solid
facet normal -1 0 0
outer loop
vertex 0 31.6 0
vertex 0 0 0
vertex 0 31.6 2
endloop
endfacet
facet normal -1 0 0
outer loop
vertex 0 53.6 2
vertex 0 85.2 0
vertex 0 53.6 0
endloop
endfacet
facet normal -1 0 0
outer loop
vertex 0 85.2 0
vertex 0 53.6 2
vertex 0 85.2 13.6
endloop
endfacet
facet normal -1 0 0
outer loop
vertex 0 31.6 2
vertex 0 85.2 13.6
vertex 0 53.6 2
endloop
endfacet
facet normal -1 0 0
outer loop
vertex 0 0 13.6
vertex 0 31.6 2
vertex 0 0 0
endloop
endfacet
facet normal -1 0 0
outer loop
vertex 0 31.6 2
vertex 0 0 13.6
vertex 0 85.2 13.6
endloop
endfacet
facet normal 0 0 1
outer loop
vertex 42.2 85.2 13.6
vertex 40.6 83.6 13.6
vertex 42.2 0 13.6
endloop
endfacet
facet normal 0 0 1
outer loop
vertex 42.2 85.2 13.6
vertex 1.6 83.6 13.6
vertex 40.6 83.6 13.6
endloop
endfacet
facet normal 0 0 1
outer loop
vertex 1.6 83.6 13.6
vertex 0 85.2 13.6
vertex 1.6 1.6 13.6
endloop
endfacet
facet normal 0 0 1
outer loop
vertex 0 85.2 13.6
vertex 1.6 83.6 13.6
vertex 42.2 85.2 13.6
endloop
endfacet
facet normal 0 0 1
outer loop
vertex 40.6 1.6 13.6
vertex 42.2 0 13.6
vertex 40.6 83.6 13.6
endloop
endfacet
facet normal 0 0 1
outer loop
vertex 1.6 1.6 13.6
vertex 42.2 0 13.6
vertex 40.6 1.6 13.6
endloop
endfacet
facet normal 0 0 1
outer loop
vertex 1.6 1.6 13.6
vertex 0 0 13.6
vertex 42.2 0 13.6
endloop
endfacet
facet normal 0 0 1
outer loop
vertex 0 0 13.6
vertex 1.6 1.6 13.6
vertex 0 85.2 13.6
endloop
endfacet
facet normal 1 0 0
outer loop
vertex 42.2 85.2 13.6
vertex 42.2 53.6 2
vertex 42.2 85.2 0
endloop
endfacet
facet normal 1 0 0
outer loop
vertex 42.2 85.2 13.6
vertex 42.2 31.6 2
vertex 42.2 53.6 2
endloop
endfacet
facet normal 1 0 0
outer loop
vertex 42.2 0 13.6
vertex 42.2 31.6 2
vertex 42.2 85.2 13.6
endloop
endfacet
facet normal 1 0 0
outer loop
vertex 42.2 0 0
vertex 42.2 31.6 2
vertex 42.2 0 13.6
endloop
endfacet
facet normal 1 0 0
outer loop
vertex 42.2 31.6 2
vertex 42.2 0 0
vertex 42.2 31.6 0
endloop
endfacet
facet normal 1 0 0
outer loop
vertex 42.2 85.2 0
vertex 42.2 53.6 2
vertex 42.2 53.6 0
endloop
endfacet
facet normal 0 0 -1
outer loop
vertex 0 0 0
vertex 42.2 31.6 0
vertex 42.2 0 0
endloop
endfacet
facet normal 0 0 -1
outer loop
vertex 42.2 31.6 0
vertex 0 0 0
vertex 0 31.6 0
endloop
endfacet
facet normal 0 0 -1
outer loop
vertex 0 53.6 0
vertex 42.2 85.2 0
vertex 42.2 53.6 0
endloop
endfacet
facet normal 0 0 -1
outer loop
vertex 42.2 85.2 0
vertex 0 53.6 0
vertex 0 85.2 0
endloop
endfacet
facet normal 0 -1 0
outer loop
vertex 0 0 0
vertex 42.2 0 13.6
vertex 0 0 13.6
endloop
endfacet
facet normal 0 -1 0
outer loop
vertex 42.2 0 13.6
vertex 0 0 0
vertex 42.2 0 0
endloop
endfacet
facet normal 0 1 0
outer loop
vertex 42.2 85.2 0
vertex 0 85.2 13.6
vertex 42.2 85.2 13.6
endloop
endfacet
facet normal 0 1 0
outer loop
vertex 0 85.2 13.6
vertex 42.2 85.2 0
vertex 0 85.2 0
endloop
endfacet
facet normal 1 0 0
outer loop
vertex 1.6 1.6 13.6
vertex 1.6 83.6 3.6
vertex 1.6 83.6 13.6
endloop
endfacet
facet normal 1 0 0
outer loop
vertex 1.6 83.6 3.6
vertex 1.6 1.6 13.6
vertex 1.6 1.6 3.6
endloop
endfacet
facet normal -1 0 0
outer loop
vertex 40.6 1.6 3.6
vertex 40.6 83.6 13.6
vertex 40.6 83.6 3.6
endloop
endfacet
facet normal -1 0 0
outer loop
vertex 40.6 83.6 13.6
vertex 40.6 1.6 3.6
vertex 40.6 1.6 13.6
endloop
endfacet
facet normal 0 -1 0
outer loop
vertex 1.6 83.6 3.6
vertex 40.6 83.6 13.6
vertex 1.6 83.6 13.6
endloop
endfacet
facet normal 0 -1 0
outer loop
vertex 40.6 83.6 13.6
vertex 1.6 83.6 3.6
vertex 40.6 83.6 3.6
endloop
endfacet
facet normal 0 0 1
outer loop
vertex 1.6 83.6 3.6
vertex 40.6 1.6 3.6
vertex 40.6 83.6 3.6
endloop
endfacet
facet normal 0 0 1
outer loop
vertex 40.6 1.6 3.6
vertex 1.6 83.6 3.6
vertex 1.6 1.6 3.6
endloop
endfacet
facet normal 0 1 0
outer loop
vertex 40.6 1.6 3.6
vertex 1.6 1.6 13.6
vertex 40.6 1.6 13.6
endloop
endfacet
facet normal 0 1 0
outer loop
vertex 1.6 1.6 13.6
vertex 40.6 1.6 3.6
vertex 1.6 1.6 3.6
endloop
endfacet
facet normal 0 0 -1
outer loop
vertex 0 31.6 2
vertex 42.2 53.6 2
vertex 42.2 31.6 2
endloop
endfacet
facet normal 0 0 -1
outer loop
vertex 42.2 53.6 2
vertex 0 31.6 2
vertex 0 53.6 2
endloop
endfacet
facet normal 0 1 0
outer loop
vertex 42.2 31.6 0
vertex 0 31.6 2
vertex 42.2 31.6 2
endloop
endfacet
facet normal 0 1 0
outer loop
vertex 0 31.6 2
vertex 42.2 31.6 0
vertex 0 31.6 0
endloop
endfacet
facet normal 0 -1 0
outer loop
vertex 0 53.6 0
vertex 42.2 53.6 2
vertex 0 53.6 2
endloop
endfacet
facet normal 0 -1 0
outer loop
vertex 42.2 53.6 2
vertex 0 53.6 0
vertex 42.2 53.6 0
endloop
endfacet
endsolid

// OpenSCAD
wallWidth = 1.6;

innerWidth = 39;
innerLength = 82;
innerDepth = 10;

strapWidth = 22;
strapHeight = 2;

difference() {
    cube([2* wallWidth + innerWidth,  2 * wallWidth + innerLength, strapHeight + wallWidth + innerDepth]);
    translate([wallWidth, wallWidth, strapHeight + wallWidth]) cube([innerWidth, innerLength, innerDepth + 0.01]);
    
    translate([-0.01, innerLength/2 + wallWidth - strapWidth/2, -0.01]) cube([2 * wallWidth + 0.02 + innerWidth, strapWidth, strapHeight + 0.01]); 
}
